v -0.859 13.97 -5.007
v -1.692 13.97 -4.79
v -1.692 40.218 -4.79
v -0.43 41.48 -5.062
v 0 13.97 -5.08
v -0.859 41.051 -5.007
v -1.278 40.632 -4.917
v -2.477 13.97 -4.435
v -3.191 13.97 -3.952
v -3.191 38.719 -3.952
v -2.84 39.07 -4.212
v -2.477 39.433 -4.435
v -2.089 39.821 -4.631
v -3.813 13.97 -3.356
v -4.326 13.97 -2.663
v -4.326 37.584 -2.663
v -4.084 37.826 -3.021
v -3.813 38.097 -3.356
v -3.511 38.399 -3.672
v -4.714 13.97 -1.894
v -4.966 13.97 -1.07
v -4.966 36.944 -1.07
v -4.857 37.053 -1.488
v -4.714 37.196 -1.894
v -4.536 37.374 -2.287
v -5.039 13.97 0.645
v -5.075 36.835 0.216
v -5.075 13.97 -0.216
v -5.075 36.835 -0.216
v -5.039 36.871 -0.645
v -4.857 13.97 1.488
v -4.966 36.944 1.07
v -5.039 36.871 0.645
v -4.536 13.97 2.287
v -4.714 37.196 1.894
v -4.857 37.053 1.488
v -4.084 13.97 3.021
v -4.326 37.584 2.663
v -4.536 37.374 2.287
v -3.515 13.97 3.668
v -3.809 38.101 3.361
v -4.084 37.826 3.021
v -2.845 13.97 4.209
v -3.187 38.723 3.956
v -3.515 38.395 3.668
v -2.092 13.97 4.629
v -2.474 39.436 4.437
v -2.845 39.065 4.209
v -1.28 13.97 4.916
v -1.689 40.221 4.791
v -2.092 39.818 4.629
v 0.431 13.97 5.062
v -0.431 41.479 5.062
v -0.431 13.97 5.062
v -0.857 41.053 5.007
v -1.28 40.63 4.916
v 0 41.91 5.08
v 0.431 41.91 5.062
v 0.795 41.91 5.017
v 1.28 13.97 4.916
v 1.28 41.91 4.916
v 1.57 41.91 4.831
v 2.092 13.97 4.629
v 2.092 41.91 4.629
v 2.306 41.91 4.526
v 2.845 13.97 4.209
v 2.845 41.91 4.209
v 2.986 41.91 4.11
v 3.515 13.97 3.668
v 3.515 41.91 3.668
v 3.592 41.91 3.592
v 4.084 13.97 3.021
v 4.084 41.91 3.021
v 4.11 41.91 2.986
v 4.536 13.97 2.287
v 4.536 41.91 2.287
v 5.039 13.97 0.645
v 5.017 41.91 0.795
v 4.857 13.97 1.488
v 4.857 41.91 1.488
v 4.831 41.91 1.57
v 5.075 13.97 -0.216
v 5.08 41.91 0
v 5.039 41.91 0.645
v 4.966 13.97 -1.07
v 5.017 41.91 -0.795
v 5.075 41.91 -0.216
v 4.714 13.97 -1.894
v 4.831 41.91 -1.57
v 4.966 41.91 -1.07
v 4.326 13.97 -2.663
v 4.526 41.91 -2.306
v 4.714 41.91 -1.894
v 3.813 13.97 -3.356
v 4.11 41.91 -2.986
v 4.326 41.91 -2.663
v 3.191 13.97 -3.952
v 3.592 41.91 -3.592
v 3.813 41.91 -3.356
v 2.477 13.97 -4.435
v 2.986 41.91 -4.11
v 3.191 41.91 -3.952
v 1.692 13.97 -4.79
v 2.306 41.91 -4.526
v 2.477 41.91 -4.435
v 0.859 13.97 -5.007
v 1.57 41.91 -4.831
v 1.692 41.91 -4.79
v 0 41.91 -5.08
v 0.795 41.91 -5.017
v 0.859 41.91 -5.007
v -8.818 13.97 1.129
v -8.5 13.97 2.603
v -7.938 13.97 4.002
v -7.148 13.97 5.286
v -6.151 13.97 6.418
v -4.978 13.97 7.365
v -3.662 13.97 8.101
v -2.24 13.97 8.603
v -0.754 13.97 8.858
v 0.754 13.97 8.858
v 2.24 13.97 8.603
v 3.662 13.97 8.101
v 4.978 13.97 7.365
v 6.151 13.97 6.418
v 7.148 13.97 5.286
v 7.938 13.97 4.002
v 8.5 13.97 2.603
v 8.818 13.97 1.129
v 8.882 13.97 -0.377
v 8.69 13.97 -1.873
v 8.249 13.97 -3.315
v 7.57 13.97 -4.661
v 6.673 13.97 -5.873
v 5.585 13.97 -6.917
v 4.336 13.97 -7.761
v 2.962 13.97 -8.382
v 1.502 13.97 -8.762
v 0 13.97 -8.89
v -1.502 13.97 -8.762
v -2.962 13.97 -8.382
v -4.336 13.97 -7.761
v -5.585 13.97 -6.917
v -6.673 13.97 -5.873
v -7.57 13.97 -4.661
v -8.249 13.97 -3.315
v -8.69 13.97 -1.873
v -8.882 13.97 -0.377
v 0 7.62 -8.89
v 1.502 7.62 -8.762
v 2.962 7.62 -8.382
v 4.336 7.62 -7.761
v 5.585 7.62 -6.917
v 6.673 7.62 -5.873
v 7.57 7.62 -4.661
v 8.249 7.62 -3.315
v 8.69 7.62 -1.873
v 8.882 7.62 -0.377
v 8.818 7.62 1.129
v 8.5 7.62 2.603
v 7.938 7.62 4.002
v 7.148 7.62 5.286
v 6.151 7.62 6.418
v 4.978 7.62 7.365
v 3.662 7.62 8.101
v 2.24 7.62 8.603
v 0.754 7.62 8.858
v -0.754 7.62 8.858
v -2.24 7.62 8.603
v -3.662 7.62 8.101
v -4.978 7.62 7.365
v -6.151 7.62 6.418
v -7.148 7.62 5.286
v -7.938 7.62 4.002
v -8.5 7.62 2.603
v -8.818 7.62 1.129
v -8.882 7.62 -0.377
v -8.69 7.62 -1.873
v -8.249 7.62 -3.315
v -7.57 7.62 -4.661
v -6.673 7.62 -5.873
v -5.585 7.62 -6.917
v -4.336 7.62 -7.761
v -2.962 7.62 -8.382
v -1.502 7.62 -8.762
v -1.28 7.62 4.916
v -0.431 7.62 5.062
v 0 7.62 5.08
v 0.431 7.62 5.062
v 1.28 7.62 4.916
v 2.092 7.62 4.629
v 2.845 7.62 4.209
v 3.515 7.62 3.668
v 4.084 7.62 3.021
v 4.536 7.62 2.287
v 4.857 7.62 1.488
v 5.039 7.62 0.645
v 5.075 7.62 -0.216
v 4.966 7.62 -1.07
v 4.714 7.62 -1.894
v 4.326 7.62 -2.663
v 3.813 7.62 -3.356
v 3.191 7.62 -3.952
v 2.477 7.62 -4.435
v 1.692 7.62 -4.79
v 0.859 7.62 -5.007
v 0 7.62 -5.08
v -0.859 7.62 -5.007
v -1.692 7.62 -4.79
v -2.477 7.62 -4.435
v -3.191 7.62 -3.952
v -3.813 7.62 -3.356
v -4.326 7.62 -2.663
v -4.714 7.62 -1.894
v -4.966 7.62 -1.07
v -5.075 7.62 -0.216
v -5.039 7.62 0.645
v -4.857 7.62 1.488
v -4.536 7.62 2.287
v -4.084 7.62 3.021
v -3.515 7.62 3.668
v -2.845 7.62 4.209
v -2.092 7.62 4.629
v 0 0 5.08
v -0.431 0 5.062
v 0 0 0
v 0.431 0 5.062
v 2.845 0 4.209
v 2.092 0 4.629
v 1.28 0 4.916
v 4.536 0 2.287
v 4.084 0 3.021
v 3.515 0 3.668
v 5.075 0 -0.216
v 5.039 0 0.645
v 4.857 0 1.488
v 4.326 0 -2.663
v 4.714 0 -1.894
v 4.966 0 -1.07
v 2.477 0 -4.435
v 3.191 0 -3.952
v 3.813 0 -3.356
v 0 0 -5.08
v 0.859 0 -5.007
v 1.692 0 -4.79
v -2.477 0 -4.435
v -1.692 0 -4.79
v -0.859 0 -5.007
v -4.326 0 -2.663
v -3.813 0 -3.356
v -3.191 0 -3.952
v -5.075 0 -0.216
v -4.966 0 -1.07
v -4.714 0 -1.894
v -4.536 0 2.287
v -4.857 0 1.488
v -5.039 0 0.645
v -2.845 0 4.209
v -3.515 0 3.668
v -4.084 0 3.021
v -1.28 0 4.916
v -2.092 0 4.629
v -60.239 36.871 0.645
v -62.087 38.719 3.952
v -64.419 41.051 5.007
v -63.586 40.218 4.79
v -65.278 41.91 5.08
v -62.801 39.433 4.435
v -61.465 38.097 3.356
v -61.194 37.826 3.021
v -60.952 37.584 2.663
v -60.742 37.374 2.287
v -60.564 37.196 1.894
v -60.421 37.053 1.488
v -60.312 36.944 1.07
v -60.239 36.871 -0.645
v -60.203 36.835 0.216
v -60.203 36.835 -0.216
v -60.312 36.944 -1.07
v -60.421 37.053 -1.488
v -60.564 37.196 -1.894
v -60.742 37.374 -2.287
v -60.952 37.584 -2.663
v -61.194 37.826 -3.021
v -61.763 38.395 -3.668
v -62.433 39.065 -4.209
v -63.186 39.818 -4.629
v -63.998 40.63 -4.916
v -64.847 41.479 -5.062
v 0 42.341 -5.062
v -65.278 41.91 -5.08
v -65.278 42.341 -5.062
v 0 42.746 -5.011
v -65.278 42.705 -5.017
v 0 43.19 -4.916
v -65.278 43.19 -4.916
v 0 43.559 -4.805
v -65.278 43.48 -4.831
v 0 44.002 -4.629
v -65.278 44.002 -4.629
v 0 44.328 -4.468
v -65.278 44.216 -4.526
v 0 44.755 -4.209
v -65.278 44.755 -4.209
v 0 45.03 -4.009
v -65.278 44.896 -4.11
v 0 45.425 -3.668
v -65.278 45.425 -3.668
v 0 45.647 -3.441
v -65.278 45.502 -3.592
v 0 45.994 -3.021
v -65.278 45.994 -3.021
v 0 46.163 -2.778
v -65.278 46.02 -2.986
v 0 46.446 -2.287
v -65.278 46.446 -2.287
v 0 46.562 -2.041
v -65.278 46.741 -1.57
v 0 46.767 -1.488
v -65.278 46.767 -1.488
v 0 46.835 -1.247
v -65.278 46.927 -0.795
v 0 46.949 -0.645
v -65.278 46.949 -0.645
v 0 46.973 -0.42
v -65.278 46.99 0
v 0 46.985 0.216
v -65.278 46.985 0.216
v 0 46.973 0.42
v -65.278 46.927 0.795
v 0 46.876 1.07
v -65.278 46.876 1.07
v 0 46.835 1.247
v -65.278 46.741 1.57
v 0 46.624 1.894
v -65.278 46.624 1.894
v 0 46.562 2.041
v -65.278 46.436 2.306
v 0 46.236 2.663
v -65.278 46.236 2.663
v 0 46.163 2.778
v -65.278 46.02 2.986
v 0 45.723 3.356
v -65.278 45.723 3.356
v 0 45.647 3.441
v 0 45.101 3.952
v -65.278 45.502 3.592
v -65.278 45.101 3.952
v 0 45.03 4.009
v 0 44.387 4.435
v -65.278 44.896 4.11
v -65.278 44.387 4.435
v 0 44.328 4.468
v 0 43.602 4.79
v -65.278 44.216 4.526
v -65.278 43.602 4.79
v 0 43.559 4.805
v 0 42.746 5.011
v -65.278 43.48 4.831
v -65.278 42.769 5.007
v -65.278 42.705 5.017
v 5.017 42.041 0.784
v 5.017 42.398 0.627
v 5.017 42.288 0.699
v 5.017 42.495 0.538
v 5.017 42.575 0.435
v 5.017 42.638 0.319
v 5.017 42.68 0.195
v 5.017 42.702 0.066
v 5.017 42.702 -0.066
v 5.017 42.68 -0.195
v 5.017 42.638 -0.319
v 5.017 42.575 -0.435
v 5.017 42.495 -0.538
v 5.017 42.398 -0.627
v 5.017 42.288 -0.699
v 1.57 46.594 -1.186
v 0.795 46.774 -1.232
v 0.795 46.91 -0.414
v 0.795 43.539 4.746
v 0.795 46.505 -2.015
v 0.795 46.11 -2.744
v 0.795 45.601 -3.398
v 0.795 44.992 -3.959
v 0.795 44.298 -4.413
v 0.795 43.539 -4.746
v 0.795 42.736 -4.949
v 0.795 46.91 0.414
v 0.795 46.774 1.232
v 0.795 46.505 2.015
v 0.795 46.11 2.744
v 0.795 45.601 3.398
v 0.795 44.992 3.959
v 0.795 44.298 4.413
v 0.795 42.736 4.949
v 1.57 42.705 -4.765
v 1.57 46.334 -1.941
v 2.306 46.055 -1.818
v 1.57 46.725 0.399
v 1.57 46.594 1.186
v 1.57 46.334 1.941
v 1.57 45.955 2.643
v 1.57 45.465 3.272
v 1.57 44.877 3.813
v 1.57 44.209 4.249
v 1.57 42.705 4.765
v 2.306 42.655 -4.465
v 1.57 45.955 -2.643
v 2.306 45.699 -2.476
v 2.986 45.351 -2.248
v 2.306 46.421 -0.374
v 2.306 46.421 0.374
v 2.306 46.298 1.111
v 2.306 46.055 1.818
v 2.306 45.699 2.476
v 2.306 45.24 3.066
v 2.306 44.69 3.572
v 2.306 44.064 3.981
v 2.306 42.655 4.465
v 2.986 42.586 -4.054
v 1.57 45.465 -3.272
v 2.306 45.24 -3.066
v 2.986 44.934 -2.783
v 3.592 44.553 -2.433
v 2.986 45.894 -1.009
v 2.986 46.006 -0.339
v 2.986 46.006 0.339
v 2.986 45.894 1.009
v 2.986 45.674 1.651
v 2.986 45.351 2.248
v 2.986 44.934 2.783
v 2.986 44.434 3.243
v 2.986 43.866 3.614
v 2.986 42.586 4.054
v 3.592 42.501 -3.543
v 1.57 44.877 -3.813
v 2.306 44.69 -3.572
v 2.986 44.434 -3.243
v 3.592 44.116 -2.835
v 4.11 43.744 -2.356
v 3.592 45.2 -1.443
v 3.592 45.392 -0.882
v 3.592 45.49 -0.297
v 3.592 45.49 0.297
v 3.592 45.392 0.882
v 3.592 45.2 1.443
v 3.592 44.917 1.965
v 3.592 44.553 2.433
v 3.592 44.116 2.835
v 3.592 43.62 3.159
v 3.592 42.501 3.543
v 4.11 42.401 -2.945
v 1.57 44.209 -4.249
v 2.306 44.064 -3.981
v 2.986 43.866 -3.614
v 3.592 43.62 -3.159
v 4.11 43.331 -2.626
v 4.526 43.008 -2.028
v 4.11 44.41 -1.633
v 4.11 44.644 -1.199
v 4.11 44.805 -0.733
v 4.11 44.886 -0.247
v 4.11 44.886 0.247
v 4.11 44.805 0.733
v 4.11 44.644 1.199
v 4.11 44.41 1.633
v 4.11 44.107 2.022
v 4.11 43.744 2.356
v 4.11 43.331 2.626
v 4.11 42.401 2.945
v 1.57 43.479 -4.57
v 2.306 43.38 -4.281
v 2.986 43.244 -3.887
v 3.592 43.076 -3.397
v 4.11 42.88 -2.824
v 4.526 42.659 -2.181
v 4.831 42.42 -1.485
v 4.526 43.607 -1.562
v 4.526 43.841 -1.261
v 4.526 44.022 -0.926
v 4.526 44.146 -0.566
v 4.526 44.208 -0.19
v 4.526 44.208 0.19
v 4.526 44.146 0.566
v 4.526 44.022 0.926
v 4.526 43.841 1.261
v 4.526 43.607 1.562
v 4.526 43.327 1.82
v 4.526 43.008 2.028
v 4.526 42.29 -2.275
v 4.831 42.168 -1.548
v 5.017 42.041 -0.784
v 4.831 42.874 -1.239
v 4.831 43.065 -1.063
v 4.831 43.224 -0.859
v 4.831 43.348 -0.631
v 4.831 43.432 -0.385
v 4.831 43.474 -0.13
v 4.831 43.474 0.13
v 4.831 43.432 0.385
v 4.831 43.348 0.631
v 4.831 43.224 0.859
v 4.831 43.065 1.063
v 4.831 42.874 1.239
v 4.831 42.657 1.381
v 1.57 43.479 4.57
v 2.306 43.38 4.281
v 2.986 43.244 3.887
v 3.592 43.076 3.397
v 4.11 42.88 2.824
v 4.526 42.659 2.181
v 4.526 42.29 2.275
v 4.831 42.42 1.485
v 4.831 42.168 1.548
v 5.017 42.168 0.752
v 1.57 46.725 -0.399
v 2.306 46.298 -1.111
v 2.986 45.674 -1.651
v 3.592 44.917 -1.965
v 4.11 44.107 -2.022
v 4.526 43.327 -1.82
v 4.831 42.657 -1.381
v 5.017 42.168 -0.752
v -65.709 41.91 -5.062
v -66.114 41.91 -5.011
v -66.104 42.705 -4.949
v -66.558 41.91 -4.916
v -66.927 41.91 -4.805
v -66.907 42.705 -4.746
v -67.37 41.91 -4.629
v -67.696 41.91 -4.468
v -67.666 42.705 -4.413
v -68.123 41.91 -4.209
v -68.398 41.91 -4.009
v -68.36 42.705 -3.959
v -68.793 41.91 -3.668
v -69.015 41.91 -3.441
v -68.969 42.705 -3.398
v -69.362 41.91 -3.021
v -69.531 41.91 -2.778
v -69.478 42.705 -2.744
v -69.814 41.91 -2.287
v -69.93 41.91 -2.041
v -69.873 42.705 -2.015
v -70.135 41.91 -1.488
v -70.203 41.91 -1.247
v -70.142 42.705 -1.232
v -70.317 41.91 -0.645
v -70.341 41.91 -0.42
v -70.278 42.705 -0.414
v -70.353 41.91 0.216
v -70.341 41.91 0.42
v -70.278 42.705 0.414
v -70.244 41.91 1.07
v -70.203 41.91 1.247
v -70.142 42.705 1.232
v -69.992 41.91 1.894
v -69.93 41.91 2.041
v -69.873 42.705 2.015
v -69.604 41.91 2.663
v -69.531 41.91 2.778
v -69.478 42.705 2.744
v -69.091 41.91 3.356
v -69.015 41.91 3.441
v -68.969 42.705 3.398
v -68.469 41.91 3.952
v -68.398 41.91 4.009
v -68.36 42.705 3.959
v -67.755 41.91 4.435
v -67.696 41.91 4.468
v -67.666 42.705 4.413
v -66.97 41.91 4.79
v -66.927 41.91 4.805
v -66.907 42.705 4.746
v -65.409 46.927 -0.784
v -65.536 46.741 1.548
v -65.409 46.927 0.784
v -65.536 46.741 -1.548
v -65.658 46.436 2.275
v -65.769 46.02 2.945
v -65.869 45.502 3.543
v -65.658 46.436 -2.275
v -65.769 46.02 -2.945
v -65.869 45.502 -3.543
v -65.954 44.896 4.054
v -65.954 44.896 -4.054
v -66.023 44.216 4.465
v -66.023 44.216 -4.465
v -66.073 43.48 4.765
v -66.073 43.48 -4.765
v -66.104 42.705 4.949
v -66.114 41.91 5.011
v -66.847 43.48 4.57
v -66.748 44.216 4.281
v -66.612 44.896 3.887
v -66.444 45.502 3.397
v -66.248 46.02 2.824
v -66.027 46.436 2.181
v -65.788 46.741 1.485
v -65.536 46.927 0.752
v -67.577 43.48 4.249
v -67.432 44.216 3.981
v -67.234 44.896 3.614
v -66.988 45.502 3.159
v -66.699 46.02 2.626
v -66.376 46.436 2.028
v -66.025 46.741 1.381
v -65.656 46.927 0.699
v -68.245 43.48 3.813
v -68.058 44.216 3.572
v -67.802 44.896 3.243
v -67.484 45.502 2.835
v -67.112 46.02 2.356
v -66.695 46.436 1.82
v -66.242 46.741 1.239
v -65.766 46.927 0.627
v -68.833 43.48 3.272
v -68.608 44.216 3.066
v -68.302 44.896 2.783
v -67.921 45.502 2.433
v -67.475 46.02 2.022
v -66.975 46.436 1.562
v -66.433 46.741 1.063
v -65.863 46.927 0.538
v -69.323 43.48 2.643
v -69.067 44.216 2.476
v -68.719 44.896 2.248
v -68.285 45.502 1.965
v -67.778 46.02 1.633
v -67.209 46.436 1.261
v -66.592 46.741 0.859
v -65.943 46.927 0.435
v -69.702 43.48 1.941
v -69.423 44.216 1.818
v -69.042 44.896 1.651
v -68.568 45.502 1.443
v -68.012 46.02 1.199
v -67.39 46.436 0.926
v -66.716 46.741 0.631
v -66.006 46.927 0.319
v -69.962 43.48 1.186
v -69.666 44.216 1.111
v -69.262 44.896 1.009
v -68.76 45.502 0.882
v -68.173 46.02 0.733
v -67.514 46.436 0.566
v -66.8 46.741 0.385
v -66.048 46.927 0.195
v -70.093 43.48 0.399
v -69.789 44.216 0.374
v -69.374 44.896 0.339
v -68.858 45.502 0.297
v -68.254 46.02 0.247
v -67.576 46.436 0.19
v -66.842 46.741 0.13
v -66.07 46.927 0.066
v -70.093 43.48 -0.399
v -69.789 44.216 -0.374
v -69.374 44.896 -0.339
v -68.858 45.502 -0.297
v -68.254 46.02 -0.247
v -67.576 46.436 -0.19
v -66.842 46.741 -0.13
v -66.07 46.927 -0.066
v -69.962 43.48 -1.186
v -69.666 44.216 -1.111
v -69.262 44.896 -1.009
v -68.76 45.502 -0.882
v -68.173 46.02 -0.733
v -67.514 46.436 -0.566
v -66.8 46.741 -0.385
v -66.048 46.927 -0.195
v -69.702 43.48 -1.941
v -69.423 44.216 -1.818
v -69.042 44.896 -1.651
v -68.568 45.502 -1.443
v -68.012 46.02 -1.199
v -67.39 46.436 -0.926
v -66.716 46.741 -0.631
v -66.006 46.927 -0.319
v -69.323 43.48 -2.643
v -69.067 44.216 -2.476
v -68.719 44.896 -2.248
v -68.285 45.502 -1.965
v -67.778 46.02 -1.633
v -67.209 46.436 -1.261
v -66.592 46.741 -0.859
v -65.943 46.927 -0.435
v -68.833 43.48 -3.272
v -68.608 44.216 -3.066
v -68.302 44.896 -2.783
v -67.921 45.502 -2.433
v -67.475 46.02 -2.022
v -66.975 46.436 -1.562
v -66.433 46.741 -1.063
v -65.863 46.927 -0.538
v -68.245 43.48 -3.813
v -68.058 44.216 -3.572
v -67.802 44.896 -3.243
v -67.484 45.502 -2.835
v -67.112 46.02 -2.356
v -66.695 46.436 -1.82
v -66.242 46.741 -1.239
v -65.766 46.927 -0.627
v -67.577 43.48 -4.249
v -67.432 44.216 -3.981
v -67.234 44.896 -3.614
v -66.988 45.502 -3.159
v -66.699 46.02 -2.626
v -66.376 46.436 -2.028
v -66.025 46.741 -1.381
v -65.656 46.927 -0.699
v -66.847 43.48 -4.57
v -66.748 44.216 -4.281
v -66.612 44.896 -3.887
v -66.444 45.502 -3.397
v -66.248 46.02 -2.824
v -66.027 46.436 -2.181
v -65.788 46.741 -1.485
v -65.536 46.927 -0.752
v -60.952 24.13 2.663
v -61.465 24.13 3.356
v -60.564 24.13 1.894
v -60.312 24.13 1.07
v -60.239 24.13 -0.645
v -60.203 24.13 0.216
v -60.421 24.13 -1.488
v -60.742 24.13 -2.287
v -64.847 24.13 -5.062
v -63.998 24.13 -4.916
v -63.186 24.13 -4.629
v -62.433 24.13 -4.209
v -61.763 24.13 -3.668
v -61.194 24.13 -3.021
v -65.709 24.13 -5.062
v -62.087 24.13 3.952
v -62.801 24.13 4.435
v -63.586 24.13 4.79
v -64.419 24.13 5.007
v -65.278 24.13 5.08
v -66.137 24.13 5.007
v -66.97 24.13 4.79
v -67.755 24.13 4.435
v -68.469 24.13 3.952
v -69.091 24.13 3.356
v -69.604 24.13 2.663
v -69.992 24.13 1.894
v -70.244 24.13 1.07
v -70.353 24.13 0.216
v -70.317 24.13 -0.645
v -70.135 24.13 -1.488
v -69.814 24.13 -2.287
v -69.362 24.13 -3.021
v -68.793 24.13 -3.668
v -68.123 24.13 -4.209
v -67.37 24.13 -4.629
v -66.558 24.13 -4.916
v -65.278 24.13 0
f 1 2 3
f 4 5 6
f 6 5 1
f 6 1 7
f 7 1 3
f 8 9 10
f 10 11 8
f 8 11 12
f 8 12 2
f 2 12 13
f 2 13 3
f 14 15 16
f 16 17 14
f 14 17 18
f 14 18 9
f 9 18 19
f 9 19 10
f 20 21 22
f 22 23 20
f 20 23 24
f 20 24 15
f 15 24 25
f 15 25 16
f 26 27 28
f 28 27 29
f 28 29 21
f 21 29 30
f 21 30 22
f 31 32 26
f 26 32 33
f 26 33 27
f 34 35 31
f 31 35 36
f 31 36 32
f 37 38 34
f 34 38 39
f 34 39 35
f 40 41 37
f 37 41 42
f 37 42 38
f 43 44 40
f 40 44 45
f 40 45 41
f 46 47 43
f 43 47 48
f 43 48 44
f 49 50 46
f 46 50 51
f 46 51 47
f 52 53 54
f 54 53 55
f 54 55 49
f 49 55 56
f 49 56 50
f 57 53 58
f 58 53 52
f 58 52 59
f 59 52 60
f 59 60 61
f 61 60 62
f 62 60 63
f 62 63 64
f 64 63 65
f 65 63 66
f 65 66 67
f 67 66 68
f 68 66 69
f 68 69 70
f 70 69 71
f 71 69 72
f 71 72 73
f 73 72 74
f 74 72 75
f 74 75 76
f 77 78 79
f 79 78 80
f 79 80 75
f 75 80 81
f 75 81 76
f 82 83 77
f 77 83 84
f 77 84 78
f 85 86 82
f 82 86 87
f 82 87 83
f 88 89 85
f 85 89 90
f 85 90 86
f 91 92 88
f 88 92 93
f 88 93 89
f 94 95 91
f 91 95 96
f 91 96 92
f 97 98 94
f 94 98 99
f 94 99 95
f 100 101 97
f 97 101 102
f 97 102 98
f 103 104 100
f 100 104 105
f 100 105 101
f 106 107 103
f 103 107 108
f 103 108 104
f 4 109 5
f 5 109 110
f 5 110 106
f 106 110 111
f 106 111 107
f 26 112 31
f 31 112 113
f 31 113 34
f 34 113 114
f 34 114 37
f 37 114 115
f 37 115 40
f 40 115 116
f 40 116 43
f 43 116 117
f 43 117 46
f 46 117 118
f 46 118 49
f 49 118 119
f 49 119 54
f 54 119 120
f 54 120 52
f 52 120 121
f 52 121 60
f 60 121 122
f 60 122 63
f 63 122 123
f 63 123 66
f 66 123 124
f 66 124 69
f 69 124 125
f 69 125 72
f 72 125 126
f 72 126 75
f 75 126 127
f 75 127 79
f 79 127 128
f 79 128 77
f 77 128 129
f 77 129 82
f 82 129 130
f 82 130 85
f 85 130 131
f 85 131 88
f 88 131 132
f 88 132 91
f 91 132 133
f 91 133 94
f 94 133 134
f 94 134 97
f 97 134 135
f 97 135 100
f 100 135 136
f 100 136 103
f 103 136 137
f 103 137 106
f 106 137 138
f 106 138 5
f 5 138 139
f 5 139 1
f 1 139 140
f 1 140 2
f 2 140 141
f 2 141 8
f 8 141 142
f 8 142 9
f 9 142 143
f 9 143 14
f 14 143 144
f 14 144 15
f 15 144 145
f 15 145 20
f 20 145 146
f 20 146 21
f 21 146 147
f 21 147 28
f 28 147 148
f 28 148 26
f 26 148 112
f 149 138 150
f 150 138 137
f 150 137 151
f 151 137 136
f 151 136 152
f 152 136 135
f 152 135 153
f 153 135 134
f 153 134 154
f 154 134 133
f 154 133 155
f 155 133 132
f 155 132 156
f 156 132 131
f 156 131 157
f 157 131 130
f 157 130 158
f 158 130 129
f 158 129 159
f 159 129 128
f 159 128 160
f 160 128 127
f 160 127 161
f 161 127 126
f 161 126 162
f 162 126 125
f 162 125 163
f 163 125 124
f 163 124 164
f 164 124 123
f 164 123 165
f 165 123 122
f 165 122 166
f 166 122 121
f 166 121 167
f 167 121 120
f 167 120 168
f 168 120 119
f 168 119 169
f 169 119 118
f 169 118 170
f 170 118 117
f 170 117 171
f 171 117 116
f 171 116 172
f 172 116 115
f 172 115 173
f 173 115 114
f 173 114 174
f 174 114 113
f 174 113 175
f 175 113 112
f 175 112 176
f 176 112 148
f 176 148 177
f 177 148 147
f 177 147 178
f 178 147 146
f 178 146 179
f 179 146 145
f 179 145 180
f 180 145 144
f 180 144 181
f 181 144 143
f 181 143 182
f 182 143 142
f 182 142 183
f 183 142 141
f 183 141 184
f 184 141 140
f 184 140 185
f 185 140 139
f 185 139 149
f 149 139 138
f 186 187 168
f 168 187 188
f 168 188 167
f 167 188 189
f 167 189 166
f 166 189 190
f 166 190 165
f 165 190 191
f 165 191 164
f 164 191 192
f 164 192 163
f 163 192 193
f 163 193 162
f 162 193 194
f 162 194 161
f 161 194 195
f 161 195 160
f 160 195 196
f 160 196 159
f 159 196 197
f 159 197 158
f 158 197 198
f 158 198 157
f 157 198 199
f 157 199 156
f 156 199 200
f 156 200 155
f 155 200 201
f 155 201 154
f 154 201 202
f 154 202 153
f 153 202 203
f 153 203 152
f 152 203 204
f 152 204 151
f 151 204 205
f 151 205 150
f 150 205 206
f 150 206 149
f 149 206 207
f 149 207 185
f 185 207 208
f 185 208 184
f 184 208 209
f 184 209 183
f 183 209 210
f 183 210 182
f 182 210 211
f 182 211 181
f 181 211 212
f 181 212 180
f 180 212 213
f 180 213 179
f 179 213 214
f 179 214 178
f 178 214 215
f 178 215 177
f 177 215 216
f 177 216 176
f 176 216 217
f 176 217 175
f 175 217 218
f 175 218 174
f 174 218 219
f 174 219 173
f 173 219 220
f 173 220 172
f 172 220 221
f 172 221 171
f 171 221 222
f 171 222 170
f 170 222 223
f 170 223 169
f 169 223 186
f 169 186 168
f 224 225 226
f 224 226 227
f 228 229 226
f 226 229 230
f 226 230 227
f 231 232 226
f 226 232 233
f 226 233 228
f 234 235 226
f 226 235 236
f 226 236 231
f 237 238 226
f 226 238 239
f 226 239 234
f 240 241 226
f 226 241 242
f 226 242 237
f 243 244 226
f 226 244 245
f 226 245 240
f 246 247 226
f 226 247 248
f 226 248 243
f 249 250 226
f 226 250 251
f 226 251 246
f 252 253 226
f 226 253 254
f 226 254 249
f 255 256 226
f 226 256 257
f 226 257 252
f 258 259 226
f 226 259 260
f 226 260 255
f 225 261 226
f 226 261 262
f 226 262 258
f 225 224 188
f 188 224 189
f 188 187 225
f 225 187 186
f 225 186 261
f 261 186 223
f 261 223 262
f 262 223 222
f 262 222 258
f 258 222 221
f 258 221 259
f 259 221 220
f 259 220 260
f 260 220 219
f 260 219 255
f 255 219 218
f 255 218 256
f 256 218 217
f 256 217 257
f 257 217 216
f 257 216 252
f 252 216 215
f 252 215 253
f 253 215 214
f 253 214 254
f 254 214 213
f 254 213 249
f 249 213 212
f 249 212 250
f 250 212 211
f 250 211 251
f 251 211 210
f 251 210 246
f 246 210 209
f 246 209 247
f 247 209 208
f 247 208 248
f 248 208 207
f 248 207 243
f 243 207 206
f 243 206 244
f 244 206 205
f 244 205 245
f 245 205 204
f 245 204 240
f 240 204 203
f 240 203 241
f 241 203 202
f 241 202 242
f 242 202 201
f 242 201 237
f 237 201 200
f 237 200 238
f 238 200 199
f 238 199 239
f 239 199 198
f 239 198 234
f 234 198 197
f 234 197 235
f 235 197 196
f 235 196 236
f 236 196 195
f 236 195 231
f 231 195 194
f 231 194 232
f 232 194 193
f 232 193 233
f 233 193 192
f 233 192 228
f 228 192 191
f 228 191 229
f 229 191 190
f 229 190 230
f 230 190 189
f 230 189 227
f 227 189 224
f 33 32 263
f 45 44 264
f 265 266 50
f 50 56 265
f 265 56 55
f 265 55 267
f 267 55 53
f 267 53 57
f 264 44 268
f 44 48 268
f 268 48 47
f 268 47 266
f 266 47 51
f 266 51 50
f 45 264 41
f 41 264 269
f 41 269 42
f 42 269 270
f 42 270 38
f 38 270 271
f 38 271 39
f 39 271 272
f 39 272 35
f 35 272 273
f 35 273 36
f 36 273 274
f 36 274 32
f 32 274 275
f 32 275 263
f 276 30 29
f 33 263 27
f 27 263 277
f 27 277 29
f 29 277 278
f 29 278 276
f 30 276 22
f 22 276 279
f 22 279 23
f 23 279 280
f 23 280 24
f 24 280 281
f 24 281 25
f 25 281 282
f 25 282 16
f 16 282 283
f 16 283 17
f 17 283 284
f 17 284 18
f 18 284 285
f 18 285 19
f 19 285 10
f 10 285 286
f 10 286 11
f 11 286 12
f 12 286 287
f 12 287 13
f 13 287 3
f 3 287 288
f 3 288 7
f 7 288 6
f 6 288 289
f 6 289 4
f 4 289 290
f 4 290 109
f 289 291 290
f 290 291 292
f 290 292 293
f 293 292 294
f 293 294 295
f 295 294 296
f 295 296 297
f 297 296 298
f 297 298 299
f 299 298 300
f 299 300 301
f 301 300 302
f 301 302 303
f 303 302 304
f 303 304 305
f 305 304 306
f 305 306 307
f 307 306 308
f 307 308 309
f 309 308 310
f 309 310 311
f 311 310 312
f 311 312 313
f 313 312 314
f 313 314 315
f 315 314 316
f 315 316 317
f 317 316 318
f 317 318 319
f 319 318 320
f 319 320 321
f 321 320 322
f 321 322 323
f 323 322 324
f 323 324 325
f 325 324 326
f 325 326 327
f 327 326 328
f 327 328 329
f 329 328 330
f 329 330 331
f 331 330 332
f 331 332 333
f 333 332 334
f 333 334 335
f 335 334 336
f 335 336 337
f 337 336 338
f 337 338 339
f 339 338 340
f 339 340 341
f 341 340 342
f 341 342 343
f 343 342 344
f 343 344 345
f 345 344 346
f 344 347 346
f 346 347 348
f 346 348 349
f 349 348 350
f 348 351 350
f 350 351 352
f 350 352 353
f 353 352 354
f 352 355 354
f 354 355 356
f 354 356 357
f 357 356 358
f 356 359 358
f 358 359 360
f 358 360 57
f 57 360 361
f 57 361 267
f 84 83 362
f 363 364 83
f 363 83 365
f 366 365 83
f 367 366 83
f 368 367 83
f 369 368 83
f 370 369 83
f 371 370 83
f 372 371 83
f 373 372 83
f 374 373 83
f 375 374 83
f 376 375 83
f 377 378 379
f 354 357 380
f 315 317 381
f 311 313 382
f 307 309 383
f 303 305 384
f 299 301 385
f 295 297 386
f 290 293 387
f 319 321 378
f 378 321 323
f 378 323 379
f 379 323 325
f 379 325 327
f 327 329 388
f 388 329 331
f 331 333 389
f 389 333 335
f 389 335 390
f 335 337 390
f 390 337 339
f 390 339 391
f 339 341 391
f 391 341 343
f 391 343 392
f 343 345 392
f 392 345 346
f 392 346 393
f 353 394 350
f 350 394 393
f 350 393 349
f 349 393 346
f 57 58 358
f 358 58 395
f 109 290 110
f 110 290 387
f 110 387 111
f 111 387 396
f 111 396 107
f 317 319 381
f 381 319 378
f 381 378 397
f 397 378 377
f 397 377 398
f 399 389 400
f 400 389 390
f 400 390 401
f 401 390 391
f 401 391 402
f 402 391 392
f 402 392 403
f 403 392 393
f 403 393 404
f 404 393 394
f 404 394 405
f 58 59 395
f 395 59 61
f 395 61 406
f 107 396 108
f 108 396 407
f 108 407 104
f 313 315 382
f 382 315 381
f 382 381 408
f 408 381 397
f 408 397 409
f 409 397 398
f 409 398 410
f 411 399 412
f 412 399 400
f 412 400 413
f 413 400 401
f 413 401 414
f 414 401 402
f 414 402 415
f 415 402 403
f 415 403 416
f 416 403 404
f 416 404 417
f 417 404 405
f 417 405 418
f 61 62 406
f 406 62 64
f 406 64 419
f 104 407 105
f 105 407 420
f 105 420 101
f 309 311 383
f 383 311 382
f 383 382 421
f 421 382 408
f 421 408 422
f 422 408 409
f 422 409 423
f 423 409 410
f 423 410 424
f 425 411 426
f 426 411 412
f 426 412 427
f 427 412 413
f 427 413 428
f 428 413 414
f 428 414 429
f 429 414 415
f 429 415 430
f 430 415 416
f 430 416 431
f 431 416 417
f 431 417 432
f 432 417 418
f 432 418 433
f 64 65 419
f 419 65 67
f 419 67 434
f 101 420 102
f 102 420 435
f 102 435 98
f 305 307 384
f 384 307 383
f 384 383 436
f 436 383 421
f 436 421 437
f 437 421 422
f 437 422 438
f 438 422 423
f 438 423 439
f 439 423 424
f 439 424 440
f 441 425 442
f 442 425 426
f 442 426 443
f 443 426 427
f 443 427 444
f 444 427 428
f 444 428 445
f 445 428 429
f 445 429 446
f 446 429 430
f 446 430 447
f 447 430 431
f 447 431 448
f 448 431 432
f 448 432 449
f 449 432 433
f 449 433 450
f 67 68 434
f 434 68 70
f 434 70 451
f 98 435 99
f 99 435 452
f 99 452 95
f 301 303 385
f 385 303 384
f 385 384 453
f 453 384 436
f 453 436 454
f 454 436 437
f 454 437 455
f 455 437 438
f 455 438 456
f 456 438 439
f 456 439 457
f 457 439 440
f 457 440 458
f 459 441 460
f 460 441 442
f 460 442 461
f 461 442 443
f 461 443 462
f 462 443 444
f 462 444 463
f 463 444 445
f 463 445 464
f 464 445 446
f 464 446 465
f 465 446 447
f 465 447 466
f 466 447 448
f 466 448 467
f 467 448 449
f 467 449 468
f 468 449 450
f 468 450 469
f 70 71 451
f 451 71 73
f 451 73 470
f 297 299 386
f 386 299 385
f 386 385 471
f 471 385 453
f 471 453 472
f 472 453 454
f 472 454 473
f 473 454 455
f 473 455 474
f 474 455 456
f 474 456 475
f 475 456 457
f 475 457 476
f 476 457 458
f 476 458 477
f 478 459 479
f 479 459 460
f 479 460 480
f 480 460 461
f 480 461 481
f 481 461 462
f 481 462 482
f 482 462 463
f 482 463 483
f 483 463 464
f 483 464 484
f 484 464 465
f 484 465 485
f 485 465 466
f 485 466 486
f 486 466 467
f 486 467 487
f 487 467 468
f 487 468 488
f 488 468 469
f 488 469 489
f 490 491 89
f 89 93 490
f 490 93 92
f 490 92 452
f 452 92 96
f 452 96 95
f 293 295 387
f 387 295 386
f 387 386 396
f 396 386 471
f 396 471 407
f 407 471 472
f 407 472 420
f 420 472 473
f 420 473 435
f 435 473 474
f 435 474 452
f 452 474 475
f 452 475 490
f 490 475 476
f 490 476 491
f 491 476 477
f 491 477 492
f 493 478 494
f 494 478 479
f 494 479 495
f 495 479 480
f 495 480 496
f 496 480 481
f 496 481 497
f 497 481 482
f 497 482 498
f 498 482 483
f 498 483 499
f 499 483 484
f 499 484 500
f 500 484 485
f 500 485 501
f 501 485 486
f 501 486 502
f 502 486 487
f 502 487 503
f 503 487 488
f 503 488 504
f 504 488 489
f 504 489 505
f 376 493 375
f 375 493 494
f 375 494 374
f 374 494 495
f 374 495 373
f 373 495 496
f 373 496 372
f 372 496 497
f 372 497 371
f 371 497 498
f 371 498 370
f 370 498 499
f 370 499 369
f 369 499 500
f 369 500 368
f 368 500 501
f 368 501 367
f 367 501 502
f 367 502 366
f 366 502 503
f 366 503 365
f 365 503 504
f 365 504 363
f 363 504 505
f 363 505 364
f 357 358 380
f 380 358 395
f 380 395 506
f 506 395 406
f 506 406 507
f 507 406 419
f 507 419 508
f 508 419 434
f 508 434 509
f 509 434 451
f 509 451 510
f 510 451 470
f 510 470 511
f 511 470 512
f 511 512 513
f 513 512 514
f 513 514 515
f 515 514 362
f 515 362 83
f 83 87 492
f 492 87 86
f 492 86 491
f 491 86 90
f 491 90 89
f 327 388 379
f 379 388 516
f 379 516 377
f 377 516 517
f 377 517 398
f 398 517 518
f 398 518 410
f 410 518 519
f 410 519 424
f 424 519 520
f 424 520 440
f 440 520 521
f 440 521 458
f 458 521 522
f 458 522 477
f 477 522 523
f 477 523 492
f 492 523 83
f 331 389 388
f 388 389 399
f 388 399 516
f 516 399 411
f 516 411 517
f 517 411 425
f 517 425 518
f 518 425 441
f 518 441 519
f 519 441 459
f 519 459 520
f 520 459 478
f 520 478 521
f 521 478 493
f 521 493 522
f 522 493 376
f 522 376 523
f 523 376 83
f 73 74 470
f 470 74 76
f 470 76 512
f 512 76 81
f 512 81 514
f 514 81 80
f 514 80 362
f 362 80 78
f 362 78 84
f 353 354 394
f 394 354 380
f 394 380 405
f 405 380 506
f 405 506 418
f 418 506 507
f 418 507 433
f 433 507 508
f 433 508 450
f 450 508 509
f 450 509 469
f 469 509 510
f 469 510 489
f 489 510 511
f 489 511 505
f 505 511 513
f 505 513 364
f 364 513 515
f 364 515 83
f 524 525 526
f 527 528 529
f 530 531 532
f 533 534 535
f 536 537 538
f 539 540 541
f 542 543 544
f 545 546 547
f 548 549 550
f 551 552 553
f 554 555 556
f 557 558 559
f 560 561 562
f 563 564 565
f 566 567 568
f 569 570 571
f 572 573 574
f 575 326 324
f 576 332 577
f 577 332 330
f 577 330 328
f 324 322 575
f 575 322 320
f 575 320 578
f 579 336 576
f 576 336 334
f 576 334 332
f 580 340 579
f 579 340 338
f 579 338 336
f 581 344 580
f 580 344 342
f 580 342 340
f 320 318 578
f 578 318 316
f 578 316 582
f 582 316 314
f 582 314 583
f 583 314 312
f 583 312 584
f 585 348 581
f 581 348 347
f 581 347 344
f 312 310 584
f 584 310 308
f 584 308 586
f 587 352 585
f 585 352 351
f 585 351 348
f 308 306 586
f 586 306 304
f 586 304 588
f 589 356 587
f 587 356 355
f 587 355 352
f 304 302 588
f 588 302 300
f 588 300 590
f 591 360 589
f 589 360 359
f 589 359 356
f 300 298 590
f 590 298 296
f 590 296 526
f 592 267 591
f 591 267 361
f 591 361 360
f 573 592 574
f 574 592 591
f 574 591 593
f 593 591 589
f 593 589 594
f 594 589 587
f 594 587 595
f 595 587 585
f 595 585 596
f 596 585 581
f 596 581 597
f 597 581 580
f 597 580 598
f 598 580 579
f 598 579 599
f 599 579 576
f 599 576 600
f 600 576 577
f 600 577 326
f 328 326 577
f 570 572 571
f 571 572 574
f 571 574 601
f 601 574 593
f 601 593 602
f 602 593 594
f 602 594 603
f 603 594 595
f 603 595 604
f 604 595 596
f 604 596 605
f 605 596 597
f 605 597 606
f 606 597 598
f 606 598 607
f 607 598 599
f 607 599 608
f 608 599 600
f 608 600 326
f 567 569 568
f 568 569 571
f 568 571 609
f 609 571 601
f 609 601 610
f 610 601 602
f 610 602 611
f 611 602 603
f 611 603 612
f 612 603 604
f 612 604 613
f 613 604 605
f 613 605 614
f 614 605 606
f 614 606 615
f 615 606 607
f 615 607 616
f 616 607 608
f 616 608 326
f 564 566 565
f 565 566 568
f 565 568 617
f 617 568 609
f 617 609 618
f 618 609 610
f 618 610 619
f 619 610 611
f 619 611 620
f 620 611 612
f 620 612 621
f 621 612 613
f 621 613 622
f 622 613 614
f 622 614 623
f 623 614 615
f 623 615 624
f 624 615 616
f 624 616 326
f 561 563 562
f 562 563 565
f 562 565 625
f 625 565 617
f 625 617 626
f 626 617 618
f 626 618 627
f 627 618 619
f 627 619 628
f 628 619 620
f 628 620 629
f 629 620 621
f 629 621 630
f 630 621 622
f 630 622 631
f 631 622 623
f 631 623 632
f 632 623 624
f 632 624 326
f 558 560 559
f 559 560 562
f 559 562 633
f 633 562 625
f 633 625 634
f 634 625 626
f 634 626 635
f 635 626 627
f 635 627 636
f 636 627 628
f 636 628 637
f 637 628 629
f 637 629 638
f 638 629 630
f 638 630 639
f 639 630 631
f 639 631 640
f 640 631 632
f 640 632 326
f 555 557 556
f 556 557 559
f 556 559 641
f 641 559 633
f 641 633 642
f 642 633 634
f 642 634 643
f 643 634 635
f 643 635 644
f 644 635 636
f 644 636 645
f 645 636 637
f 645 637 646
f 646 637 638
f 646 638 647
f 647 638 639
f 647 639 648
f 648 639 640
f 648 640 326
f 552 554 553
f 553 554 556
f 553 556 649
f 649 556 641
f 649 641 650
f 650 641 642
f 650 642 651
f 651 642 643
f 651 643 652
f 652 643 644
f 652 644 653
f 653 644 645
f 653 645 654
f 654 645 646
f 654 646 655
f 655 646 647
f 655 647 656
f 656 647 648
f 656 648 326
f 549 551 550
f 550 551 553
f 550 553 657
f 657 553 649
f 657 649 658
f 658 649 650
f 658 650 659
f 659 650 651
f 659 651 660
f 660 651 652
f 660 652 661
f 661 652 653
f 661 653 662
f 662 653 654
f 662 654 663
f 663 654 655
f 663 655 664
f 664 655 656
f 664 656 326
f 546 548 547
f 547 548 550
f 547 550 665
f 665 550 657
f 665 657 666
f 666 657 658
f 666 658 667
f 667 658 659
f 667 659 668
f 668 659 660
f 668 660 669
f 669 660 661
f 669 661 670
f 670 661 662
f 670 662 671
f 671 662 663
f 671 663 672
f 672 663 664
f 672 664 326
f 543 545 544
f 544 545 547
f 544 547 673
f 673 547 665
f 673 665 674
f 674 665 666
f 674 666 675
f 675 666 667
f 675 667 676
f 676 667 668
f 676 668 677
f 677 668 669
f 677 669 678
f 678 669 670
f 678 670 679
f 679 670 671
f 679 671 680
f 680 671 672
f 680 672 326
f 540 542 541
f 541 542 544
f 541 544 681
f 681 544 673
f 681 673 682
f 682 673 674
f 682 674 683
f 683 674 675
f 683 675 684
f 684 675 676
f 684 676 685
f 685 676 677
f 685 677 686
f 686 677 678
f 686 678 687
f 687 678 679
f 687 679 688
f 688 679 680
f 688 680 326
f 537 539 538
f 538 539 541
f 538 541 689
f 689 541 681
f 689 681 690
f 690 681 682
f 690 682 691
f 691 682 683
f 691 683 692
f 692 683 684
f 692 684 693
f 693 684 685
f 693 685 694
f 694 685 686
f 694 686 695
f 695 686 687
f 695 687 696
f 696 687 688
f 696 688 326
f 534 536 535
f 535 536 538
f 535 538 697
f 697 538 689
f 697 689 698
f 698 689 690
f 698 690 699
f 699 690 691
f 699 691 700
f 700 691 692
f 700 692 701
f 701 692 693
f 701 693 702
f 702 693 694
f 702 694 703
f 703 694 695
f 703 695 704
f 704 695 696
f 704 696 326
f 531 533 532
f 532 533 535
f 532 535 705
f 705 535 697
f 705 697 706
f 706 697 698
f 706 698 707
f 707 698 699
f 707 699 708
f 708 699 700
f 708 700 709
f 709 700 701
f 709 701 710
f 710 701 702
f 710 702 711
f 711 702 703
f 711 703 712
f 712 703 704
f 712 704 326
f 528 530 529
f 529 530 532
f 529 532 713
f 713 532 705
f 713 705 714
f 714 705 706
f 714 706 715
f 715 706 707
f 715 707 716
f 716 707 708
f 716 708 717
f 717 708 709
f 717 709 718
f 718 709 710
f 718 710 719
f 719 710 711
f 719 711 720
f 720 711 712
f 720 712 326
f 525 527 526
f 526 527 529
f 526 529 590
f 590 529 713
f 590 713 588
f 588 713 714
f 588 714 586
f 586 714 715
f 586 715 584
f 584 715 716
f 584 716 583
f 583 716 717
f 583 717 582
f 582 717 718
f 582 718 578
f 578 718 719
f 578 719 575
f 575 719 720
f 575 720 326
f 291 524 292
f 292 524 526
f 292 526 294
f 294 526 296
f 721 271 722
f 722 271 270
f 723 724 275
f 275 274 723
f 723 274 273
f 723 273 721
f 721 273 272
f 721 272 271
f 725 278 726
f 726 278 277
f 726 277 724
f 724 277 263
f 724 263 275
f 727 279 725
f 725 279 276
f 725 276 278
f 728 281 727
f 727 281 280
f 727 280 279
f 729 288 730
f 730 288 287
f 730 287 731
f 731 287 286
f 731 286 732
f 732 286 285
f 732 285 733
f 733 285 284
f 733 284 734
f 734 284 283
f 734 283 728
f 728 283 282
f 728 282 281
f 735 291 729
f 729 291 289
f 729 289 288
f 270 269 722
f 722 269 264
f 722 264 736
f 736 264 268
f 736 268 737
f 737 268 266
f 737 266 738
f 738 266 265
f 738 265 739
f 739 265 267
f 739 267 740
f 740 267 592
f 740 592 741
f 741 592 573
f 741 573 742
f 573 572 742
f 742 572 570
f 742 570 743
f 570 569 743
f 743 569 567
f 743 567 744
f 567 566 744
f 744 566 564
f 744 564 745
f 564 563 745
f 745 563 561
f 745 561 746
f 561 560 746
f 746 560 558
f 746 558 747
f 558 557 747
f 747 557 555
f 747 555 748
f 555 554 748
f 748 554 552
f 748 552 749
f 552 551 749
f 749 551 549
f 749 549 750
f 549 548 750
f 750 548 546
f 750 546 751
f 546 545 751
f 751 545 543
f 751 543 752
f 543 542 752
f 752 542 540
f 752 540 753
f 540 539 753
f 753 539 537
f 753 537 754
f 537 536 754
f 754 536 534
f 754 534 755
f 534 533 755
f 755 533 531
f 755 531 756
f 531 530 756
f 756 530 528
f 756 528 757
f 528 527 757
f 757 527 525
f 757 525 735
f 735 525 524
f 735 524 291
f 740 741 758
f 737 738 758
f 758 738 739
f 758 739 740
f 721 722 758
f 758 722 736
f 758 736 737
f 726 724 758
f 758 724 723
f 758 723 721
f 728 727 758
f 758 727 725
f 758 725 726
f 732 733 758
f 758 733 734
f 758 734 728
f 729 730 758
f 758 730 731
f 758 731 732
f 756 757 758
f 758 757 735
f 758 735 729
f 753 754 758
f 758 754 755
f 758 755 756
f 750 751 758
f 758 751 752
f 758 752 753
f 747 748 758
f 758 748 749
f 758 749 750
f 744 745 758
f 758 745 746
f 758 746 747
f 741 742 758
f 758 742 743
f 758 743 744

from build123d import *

# Parameters (mm, degrees)
SKETCH2_R           = 5.08
BOSS_EXTRUDE2_DEPTH = 41.91
SKETCH3_W           = 8.89
SKETCH3_H           = 6.35


with BuildPart() as part:
    # Sketch2 → Boss-Extrude2 (new body)
    with BuildSketch(Plane(origin=(0, 0, 0), x_dir=(-1, 0, 0), z_dir=(0, 1, 0))):
        with Locations(Location((0, 0, 0), (0, 0, 90))):
            Circle(SKETCH2_R)
    extrude(amount=BOSS_EXTRUDE2_DEPTH)

    # Sketch3 → Revolve1 (revolve)
    with BuildSketch(Plane.XY, mode=Mode.PRIVATE) as revolve1_sk:
        with Locations((-4.445, 10.795)):
            Rectangle(SKETCH3_W, SKETCH3_H)
    revolve(revolve1_sk.sketch.rotate(Axis((0, 0, 0), (0, 1, 0)), 270), axis=Axis((0, 0, 0), (0, 1, 0)))

    # Sketch4 → Revolve2 (revolve)
    with BuildSketch(Plane(origin=(0, 41.91, 0), x_dir=(1, 0, 0), z_dir=(0, 1, 0)), mode=Mode.PRIVATE) as revolve2_sk:
        with BuildLine():
            Line((0, 5.08), (-65.278, 5.08))
            Line((-65.278, 5.08), (-65.278, 0))
            Line((-65.278, 0), (5.08, 0))
            ThreePointArc((5.08, 0), (3.592102448, 3.592102448), (0, 5.08))
        make_face()
    revolve(revolve2_sk.sketch.rotate(Axis((-65.278, 41.91, 0), (1, 0, 0)), 180), axis=Axis((-65.278, 41.91, 0), (1, 0, 0)))

    # Sketch5 → Revolve3 (revolve)
    with BuildSketch(Plane.ZY.offset(65.278), mode=Mode.PRIVATE) as revolve3_sk:
        with BuildLine():
            Line((0, 46.99), (0, 24.13))
            Line((0, 24.13), (-5.08, 24.13))
            Line((-5.08, 24.13), (-5.08, 41.91))
            ThreePointArc((-5.08, 41.91), (-3.592102448, 45.502102448), (0, 46.99))
        make_face()
    revolve(revolve3_sk.sketch.rotate(Axis((-65.278, 46.99, 0), (0, -1, 0)), 180), axis=Axis((-65.278, 46.99, 0), (0, -1, 0)))


solid = part.part
